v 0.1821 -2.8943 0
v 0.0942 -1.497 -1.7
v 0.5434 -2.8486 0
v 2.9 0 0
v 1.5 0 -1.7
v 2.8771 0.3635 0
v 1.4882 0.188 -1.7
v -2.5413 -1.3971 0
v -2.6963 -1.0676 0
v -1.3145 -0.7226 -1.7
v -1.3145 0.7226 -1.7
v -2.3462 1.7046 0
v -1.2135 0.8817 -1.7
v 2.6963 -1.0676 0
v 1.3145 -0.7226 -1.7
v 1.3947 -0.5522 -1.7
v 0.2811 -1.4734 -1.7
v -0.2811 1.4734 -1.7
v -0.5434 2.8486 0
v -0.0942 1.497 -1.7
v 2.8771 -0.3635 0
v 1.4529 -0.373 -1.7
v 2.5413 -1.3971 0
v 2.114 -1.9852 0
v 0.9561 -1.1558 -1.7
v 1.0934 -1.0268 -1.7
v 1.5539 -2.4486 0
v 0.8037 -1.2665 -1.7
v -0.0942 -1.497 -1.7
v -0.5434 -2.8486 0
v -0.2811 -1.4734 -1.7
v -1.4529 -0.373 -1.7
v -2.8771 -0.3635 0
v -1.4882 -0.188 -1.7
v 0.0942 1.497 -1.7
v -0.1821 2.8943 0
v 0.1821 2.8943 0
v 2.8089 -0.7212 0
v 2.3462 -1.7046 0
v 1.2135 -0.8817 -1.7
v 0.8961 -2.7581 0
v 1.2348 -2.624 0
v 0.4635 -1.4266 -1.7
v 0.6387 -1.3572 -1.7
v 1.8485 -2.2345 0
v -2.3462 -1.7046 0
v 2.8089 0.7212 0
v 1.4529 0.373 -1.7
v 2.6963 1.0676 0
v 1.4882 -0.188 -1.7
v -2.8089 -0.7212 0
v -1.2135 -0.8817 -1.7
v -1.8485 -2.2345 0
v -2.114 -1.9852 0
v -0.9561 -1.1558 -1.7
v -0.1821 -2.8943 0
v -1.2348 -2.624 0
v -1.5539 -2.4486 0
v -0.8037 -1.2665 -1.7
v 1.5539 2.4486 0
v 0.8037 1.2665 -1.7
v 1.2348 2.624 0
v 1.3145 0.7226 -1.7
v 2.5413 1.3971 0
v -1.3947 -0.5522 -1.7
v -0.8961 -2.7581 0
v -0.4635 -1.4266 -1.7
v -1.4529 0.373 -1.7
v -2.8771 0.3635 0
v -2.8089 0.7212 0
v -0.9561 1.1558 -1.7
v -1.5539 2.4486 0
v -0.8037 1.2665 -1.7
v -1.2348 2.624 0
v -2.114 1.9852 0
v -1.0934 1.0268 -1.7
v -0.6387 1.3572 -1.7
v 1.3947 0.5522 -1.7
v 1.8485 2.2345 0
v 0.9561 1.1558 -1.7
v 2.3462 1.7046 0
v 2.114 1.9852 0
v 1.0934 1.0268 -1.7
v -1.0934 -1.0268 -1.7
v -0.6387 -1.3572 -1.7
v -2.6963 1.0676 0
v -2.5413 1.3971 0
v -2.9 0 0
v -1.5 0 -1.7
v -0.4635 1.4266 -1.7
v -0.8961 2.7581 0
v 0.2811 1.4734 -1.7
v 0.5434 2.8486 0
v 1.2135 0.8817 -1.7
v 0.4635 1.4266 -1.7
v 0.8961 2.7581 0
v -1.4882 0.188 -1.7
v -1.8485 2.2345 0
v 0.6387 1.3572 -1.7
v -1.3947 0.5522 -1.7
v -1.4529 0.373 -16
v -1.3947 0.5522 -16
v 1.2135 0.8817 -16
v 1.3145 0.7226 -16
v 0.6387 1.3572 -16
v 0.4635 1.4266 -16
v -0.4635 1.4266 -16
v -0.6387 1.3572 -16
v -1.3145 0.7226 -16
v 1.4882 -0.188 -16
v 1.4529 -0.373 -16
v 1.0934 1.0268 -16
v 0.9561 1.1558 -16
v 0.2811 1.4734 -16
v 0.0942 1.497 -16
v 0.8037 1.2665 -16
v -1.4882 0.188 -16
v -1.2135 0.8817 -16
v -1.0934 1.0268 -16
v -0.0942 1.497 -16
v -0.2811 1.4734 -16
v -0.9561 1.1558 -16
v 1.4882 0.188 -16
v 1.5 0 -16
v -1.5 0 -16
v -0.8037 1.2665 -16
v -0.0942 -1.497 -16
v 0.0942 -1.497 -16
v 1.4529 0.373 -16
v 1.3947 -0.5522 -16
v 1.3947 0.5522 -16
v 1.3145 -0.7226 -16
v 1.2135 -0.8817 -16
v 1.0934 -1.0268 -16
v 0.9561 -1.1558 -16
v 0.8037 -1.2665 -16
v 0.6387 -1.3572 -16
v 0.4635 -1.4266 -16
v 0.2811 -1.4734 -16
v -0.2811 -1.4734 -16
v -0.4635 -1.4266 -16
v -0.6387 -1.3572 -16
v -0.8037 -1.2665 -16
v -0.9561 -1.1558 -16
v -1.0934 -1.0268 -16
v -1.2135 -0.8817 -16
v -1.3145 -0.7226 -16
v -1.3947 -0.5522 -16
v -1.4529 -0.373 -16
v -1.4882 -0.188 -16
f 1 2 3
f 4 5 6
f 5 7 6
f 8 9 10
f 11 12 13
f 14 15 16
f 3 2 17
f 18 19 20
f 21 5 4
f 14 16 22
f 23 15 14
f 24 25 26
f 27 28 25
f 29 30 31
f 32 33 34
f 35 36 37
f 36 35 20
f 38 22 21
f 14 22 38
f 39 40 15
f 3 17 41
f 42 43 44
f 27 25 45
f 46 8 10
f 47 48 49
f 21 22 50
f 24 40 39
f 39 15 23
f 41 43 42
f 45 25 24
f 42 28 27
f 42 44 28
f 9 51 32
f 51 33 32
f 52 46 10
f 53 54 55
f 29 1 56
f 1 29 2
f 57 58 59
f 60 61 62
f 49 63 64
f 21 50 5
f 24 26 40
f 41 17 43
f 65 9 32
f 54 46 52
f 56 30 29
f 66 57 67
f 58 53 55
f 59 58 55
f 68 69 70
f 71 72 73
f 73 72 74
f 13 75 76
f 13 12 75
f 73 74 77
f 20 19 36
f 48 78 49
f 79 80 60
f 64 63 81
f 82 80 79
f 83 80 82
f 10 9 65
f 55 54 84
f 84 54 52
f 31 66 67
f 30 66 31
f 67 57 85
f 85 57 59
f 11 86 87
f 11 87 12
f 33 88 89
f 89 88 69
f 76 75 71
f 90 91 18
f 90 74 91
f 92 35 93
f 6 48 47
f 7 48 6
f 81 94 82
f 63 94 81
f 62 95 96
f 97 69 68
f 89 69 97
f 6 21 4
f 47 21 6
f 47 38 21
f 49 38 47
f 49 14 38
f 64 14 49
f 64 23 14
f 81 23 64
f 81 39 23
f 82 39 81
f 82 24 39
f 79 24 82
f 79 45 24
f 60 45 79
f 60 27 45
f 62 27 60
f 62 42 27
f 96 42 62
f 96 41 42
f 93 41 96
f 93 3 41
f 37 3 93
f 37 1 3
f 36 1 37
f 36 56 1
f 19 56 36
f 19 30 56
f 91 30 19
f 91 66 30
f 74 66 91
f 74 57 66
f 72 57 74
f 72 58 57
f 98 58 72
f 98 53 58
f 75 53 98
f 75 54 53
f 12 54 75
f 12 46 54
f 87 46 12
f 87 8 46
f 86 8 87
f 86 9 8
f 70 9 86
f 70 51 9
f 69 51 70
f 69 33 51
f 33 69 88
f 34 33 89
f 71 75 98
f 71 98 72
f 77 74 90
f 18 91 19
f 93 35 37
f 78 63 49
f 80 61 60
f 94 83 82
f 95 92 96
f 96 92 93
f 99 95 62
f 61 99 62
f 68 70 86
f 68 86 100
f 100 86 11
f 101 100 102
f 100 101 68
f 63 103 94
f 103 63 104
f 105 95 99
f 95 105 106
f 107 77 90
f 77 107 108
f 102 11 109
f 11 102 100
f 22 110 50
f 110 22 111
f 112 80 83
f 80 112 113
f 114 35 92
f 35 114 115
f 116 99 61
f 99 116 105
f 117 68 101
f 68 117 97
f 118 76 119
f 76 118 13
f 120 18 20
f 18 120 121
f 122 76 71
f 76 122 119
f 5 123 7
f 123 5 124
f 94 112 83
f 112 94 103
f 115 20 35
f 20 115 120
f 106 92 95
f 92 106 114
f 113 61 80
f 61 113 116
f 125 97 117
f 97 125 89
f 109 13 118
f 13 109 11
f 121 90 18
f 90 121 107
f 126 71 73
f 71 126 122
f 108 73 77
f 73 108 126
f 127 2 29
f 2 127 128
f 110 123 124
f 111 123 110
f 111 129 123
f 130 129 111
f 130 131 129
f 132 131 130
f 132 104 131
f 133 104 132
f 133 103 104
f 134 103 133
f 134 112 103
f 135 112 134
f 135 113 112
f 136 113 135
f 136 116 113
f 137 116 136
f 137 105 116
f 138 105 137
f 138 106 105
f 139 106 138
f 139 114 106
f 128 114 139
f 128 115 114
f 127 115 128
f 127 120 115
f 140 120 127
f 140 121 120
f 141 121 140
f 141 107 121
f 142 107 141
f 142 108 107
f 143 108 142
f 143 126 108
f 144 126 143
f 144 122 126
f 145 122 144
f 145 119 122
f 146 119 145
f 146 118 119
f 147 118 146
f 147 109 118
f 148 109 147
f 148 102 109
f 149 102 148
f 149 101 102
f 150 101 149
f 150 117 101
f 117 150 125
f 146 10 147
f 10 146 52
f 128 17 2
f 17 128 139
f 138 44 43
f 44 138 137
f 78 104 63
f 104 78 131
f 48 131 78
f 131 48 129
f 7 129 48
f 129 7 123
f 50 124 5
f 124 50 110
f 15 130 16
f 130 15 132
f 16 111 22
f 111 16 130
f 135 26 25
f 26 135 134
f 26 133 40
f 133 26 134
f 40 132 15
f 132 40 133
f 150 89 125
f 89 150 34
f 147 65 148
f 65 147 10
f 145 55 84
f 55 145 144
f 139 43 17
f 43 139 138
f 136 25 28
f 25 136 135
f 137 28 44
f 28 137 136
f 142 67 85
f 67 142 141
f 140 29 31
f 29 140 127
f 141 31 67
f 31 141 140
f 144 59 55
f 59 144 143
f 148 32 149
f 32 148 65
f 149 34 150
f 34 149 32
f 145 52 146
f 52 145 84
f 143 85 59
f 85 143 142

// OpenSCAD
// Generated by SolidPython 1.1.3 on 2023-03-13 21:43:02
$fn = 50;


difference() {
	union() {
		translate(v = [0, 0, -1.7000000000]) {
			rotate(a = [0, 0, 0]) {
				cylinder(h = 1.7000000000, r1 = 1.5000000000, r2 = 2.9000000000);
			}
		}
		translate(v = [0, 0, -16]) {
			rotate(a = [0, 0, 0]) {
				cylinder(h = 16, r = 1.5000000000);
			}
		}
	}
	union();
}
/***********************************************
*********      SolidPython code:      **********
************************************************
 
from solid import *
import os
import subprocess

import oomB

import opsc_library_gen

mode = "laser"
#mode = "3d_print"

defined_objects = {}

radius_dict = {}
countersunk_dict = {}


def set_mode(m):
    global mode
    mode = m
    radius_dict['M6'] = 6.5/2
    radius_dict['M3'] = 3.3/2
    if mode == "laser":
        radius_dict['M6'] = 6/2
        radius_dict['M3'] = 3/2

    countersunk_dict['M3'] = {}
    countersunk_dict['M3']['little_rad'] = radius_dict['M3']
    countersunk_dict['M3']['big_rad'] = (5.5+0.6)/2
    if mode == "laser":
        countersunk_dict['M3']['big_rad'] = (4.75+0.6)/2
        countersunk_dict['M3']['little_rad'] = (4.75+0.6)/2

    countersunk_dict['M3']['height'] = 1.7


def opsc_make_object(filename, objects, save_type="none",resolution=50, layers = 1, tilediff = 200, mode="laser", overwrite=True):
    if overwrite or not os.path.exists(filename):
        set_mode(mode)
        save_type = save_type.lower()
        os.makedirs(os.path.dirname(filename), exist_ok=True)
        final_object = opsc_get_object(objects, mode = mode)
        # Save the final object to the specified filename    
        scad_render_to_file(final_object, filename, file_header='$fn = %s;' % resolution, include_orig_code=True)
        if save_type == "all":
            saveToAll(filename)
        elif save_type == "dxf":
            saveToDxf(filename)
        if mode == "laser":
            filename_laser = filename.replace(".scad","-flat.scad")
            scad_render_to_file(getLaser(final_object, layers=layers, tilediff=tilediff), filename_laser, file_header='$fn = %s;' % resolution, include_orig_code=True)
            if save_type == "all":
                saveToAll(filename_laser)
            elif save_type == "dxf":
                saveToDxf(filename_laser)


def opsc_get_object(objects, mode = "laser"):
    # Create the solidpython objects only include the positive objects and if they don't have inclusion or their inclusion is either all or mode
    # Initialize an empty list to store the results
    positive_objects = []

    # Iterate over the "objects" list
    for obj in objects:
        # Check if the current object has a "type" key with a value of "positive"
        if obj['type'] == 'positive':
            # Check if the current object has an "inclusion" key and its value matches "mode",
            # or if the current object does not have an "inclusion" key at all
            if not 'inclusion' in obj or obj['inclusion'] == "all" or obj['inclusion'] == mode:
                # Call the "get_opsc_item" function with the current object as an argument
                opsc_item = get_opsc_item(obj)
                # Add the result to the "positive_objects" list
                positive_objects.append(opsc_item)
# Initialize an empty list to store the results
    negative_objects = []

    # Iterate over the "objects" list
    for obj in objects:
        # Check if the current object has a "type" key with a value of "negative"
        if obj['type'] == 'negative':
            # Check if the current object has an "inclusion" key and its value matches "mode",
            # or if the current object does not have an "inclusion" key at all
            if not 'inclusion' in obj or obj['inclusion'] == "all" or obj['inclusion'] == mode:
                # Call the "get_opsc_item" function with the current object as an argument
                opsc_item = get_opsc_item(obj)
                # Add the result to the "negative_objects" list
                negative_objects.append(opsc_item)
    
    #positive_objects = [get_opsc_item(obj) for obj in objects if obj['type'] == 'positive']
    #negative_objects = [get_opsc_item(obj) for obj in objects if obj['type'] == 'negative']
    # Union the positive objects
    positive_object = union()(*positive_objects)
    # Union the negative objects
    negative_object = union()(*negative_objects)
    # Create the final object by subtracting the negative objects from the positive objects
    return difference()(positive_object, negative_object)

def get_opsc_item(params):
    # A dictionary to map radius string values to numerical values
    #radius_dict = {'small': 5, 'medium': 10, 'large': 15}
    # An array of function names for basic shapes
    basic_shapes = ['cube', 'sphere', 'cylinder']
    
    # An array of function names for other shapes
    other_shapes = ['hole', 'slot', 'rounded_rectangle', 'countersunk', 'polyg']
    


    # Convert radius to r if present, and remove radius from the params dictionary
    if 'radius' in params:
        if isinstance(params['radius'], str):
            # Use the radius_dict to map the radius string value to a numerical value
            params['r'] = radius_dict[params['radius']]
        else:
            params['r'] = params['radius']
        del params['radius']
    

    # Check if the object type is a basic shape
    if params['shape'] in basic_shapes:
        # Remove shape and unexpected dictionary values
        allowed_keys = {'size', 'r', 'r1', 'r2', 'd', 'h', 'rw', 'rh', 'dw', 'dh'}
        shape_params = {k: v for k, v in params.items() if k in allowed_keys}

        #params['m'] = "#"
        ###split for adding modifier
        try:
            m = params['m']
            func = globals()[params['shape']]
            return_value = get_opsc_transform(params,func(**shape_params))
            return_value = (return_value).set_modifier(m)
            return return_value
        except KeyError as e:
            return get_opsc_transform(params,globals()[params['shape']](**shape_params))
        
    elif params['shape'] == 'polygon':
        # Remove shape and unexpected dictionary values
        h  = params['height']
        allowed_keys = {'points'}
        shape_params = {k: v for k, v in params.items() if k in allowed_keys}

        # Call the corresponding function for the shape parameter, using ** notation to pass the shape_params dictionary as keyword arguments
        params["rot"] = [0,0,0]        
        try:
            m = params['m']
            func = globals()[params['shape']]
            return_value = get_opsc_transform(params,linear_extrude(h)(globals()[params['shape']](**shape_params)))
            return_value = (return_value).set_modifier(m)
            return return_value
        except KeyError as e:
            return_value = get_opsc_transform(params,linear_extrude(h)(globals()[params['shape']](**shape_params)))
            return_value = (return_value)
            return return_value


    # If the object type is not a basic shape, check if it's a defined object or one of the other shapes
    elif params['shape'] in other_shapes:
        # Call the corresponding function for the shape parameter, passing the params dictionary as an argument
        p2 = copy.deepcopy(params)
        p2["pos"] = [0,0,0]
        return get_opsc_transform(params,globals()[params['shape']](p2))
    
    # If the object is not a basic shape or a defined object, try to import it from a .scad file
    else:
        obj = defined_objects[params['shape']]
        return get_opsc_transform(params,obj)

def get_opsc_transform(params, solid_obj):
    # Rotate the object based on the 'rot' field in the params dictionary, or the 'rotX', 'rotY', and 'rotZ' fields if 'rot' is not present
    rot = params.get('rot', [])
    if rot:
        rotX, rotY, rotZ = rot
    else:
        rotX = params.get('rotX', 0)
        rotY = params.get('rotY', 0)
        rotZ = params.get('rotZ', 0)
    solid_obj = rotate([rotX, rotY, rotZ])(solid_obj)

    # Translate the object based on the 'pos' field in the params dictionary, or the 'x', 'y', and 'z' fields if 'pos' is not present
    pos = params.get('pos', [])
    if pos:
        x, y, z = pos
    else:
        x = params.get('x', 0)
        y = params.get('y', 0)
        z = params.get('z', 0)
    solid_obj = translate([x, y, z])(solid_obj)
    return solid_obj


import random

def opsc_easy_array(type, shape, repeats, pos_start, shift_arr, **kwargs):
    for i in range(0,3):
        repeats.append(1)
        pos_start.append(0)
        shift_arr.append(0)
    return_objects = []

    for x in range(0,repeats[0]):
        for y in range(0,repeats[1]):
            for z in range(0,repeats[2]):
                return_objects.append(opsc_easy(type, shape, pos=[pos_start[0]+x*shift_arr[0],pos_start[1]+y*shift_arr[1],pos_start[2]+z*shift_arr[2]], **kwargs))
    return return_objects                



def opsc_easy(type, shape, **kwargs):
    obj = {
        'type': type,
        'shape': shape
    }
    for param in ['size', 'r', 'r1', 'r2', 'd', 'h', 'rw', 'rh', 'dw', 'dh', 'pos', 'x', 'y', 'z', 'rot', 'rotX', 'rotY', 'rotZ', "w", "inclusion", 'sides', 'height', "m"]:
        if param in kwargs:
            obj[param] = kwargs[param]
    return obj

def hole(params):
    p2 = copy.deepcopy(params)  
    # Check if the radius is a string and replace it with the corresponding value from the dictionary
    if isinstance(p2['r'], str):
        p2['r'] = radius_dict[p2['r']]
    
    # Set the height to 100 if not specified
    if 'h' not in p2:
        p2['h'] = 100
        p2["pos"] = [0,0,-50]
    p2["center"] = True
    # Create the cylinder object
    p2["shape"] = "cylinder"
    p2["type"] = "positive"

    return get_opsc_item(p2)

import copy

def countersunk(params):
    p2 = copy.deepcopy(params)
    counter_rad = p2['r']
    p2['r'] = radius_dict[p2['r']]
    hp = copy.deepcopy(p2)
    hp["type"] = "positive"
    hp["shape"] = "hole"
    del hp["rot"]
    hol = get_opsc_item(hp)
    
    cp = copy.deepcopy(p2)
    cp["h"] = countersunk_dict[counter_rad]["height"]
    cp["r2"] = countersunk_dict[counter_rad]["little_rad"]
    cp["r1"] = countersunk_dict[counter_rad]["big_rad"]
    del cp["r"]
    del cp["rot"]
    cp["type"] = "positive"
    cp["shape"] = "cylinder"
    cp["pos"] = [0,0,0]

    top = get_opsc_item(cp)
    return union()(hol,top)



def slot(params):  
    p2 = copy.deepcopy(params) 
    if isinstance(p2['r'], str):
        p2['r'] = radius_dict[p2['r']]
    p2["type"] = "positive"
    p2["shape"] = "hole"
    del p2["rot"]
    p2["pos"] = [0,0,0]
    left = copy.deepcopy(p2)
    right = copy.deepcopy(p2)
    left["pos"][0] = p2["w"] / 2 - p2["r"] 
    
    right["pos"][0] = -p2["w"] / 2 + p2["r"] 
    pass
    leftObj = get_opsc_item(left)
    rightObj = get_opsc_item(right)
    return hull()(leftObj, rightObj)

def rounded_rectangle(params):   
    p2 = copy.deepcopy(params) 
    p2["h"] = p2["size"][2]
    p2["pos"] = p2.get("pos", [0, 0, 0]) 
    p2["type"] = "positive"
    p2["shape"] = "hole"
    p2["pos"] = [0,0,0]
    
    if 'rot' in p2:
        del p2["rot"]   
    if 'r' not in p2:
        p2["r"] = 5 
    tl = copy.deepcopy(p2)
    tr = copy.deepcopy(p2)
    bl = copy.deepcopy(p2)
    br = copy.deepcopy(p2)
    tl["pos"][0] = -(p2["size"][0] - p2["r"]*2)/2
    tl["pos"][1] = (p2["size"][1] - p2["r"]*2)/2
    tr["pos"][0] = (p2["size"][0] - p2["r"]*2)/2
    tr["pos"][1] = (p2["size"][1] - p2["r"]*2)/2
    bl["pos"][0] = -(p2["size"][0] - p2["r"]*2)/2
    bl["pos"][1] = -(p2["size"][1] - p2["r"]*2)/2
    br["pos"][0] = (p2["size"][0] - p2["r"]*2)/2
    br["pos"][1] = -(p2["size"][1] - p2["r"]*2)/2
    del tl["size"]
    del tr["size"]
    del bl["size"]
    del br["size"]
    tlo = get_opsc_item(tl)
    tro = get_opsc_item(tr)
    blo = get_opsc_item(bl)
    bro = get_opsc_item(br)    
    return hull()(tlo, tro, blo, bro)



def polyg(params):
    p2 = copy.deepcopy(params) 
    p2["type"] = "positive"
    p2["shape"] = "polygon"
    p2["pos"] = [0,0,0]
    sides = p2["sides"]
    radius = p2["r"]    
    angles = [i * 360 / sides for i in range(sides)]
    points = regular_polygon(sides, radius)
    
    p2["points"] = points
    return get_opsc_item(p2)

import math

def regular_polygon(num_sides, radius):
    # Calculate the angle between each side
    angle = 2 * math.pi / num_sides

    # Calculate the points of the polygon
    points = []
    for i in range(num_sides):
        x = radius * math.cos(i * angle)
        y = radius * math.sin(i * angle)
        points.append((x, y))
    return points

def import_scad_object(filename):
    # Import the .scad file and convert it to a solidpython object
    #filename = "parts"
    obj = import_scad(filename)
    return obj.main()



import os
import solid as solidpython

# A dictionary to store the defined objects


def load_scad_objects():
    opsc_library_gen.gen_library(defined_objects)

import random

def test(num_objects):
    objects = []
    for i in range(num_objects):
        # Choose a random shape
        #shape = random.choice(['cube', 'sphere', 'cylinder', 'hole', 'slot', "rounded_rectangle"])
        shape = random.choice(["rounded_rectangle"])

        # Choose a random type
        type = random.choice(['positive', 'negative'])
        
        # Create an empty object dictionary
        obj = {'shape': shape, 'type': type}
        
        # Set shape-specific parameters
        if obj['shape'] in ['cube']:
            obj['size'] =  [random.uniform(5, 15), random.uniform(5, 15), random.uniform(5, 15)]
        if obj['shape'] in ['rounded_rectangle']:
            obj['size'] =  [random.uniform(5, 15), random.uniform(5, 15), random.uniform(5, 15)]
            obj['r'] = random.uniform(0.5, 5)
        elif obj['shape'] == 'sphere':
            obj['r'] = random.uniform(5, 15)
        elif obj['shape'] in ['cylinder', 'hole']:
            obj['r'] = random.uniform(0.5, 5)
            obj['h'] = random.uniform(5, 15)
        elif obj['shape'] == 'slot':
            obj['r'] = random.uniform(0.5, 5)
            obj['h'] = random.uniform(5, 15)
            obj['w'] = random.uniform(5, 15)
        
        # Set a random position and rotation
        obj['pos'] = [random.uniform(-20, 20), random.uniform(-20, 20), random.uniform(-20, 20)]
        obj['rot'] = [random.uniform(-180, 180), random.uniform(-180, 180), random.uniform(-180, 180)]
        
        # Add the object to the list
        objects.append(obj)
    return objects

####### old file saving
def saveToAll(fileIn):
    saveToStl(fileIn)
    saveToDxf(fileIn)
    saveToPng(fileIn)
    saveToSvg(fileIn)

def saveToDxf(fileIn, fileOut="", copy_to_laser=True):
    if fileOut == "":
        fileOut = fileIn.replace(".scad",".dxf")
    saveToFile(fileIn, fileOut)


    
def saveToPng(fileIn, fileOut="",extra="--render"):
    if fileOut == "":
        fileOut = fileIn.replace(".scad",".png")
    saveToFile(fileIn, fileOut)

def saveToStl(fileIn, fileOut=""):
    if fileOut == "":
        fileOut = fileIn.replace(".scad",".stl")
    saveToFile(fileIn, fileOut)
    
def saveToSvg(fileIn, fileOut=""):
    if fileOut == "":
        fileOut = fileIn.replace(".scad",".svg")
    saveToFile(fileIn, fileOut)

def saveToFile(fileIn, fileOut,extra=""):
    #extra = extra + " --colorscheme Tomorrow"

    launchStr = 'openscad -o "' + fileOut + '"' + extra + ' "' + fileIn + '"'
    if ".png" in fileOut:
        launchStr = launchStr + " --render"
    print("            saveToFile launch string: " + launchStr)
    subprocess.run(launchStr)
    x=0

def getLaser(final_object,start=1.5,layers=1,thickness=3,tilediff=200):
        rv= []

        for x in range(layers):
            rv.append(translate([0,x*tilediff,0])(
                    projection()(
                        intersection()(translate([-500,-500,start+x*thickness])(cube(size=[1000,1000,0.1])),
                            final_object
                        )
                    )
            )
            )
            
        return union()(rv)

set_mode("laser")
load_scad_objects() 
 
************************************************/
